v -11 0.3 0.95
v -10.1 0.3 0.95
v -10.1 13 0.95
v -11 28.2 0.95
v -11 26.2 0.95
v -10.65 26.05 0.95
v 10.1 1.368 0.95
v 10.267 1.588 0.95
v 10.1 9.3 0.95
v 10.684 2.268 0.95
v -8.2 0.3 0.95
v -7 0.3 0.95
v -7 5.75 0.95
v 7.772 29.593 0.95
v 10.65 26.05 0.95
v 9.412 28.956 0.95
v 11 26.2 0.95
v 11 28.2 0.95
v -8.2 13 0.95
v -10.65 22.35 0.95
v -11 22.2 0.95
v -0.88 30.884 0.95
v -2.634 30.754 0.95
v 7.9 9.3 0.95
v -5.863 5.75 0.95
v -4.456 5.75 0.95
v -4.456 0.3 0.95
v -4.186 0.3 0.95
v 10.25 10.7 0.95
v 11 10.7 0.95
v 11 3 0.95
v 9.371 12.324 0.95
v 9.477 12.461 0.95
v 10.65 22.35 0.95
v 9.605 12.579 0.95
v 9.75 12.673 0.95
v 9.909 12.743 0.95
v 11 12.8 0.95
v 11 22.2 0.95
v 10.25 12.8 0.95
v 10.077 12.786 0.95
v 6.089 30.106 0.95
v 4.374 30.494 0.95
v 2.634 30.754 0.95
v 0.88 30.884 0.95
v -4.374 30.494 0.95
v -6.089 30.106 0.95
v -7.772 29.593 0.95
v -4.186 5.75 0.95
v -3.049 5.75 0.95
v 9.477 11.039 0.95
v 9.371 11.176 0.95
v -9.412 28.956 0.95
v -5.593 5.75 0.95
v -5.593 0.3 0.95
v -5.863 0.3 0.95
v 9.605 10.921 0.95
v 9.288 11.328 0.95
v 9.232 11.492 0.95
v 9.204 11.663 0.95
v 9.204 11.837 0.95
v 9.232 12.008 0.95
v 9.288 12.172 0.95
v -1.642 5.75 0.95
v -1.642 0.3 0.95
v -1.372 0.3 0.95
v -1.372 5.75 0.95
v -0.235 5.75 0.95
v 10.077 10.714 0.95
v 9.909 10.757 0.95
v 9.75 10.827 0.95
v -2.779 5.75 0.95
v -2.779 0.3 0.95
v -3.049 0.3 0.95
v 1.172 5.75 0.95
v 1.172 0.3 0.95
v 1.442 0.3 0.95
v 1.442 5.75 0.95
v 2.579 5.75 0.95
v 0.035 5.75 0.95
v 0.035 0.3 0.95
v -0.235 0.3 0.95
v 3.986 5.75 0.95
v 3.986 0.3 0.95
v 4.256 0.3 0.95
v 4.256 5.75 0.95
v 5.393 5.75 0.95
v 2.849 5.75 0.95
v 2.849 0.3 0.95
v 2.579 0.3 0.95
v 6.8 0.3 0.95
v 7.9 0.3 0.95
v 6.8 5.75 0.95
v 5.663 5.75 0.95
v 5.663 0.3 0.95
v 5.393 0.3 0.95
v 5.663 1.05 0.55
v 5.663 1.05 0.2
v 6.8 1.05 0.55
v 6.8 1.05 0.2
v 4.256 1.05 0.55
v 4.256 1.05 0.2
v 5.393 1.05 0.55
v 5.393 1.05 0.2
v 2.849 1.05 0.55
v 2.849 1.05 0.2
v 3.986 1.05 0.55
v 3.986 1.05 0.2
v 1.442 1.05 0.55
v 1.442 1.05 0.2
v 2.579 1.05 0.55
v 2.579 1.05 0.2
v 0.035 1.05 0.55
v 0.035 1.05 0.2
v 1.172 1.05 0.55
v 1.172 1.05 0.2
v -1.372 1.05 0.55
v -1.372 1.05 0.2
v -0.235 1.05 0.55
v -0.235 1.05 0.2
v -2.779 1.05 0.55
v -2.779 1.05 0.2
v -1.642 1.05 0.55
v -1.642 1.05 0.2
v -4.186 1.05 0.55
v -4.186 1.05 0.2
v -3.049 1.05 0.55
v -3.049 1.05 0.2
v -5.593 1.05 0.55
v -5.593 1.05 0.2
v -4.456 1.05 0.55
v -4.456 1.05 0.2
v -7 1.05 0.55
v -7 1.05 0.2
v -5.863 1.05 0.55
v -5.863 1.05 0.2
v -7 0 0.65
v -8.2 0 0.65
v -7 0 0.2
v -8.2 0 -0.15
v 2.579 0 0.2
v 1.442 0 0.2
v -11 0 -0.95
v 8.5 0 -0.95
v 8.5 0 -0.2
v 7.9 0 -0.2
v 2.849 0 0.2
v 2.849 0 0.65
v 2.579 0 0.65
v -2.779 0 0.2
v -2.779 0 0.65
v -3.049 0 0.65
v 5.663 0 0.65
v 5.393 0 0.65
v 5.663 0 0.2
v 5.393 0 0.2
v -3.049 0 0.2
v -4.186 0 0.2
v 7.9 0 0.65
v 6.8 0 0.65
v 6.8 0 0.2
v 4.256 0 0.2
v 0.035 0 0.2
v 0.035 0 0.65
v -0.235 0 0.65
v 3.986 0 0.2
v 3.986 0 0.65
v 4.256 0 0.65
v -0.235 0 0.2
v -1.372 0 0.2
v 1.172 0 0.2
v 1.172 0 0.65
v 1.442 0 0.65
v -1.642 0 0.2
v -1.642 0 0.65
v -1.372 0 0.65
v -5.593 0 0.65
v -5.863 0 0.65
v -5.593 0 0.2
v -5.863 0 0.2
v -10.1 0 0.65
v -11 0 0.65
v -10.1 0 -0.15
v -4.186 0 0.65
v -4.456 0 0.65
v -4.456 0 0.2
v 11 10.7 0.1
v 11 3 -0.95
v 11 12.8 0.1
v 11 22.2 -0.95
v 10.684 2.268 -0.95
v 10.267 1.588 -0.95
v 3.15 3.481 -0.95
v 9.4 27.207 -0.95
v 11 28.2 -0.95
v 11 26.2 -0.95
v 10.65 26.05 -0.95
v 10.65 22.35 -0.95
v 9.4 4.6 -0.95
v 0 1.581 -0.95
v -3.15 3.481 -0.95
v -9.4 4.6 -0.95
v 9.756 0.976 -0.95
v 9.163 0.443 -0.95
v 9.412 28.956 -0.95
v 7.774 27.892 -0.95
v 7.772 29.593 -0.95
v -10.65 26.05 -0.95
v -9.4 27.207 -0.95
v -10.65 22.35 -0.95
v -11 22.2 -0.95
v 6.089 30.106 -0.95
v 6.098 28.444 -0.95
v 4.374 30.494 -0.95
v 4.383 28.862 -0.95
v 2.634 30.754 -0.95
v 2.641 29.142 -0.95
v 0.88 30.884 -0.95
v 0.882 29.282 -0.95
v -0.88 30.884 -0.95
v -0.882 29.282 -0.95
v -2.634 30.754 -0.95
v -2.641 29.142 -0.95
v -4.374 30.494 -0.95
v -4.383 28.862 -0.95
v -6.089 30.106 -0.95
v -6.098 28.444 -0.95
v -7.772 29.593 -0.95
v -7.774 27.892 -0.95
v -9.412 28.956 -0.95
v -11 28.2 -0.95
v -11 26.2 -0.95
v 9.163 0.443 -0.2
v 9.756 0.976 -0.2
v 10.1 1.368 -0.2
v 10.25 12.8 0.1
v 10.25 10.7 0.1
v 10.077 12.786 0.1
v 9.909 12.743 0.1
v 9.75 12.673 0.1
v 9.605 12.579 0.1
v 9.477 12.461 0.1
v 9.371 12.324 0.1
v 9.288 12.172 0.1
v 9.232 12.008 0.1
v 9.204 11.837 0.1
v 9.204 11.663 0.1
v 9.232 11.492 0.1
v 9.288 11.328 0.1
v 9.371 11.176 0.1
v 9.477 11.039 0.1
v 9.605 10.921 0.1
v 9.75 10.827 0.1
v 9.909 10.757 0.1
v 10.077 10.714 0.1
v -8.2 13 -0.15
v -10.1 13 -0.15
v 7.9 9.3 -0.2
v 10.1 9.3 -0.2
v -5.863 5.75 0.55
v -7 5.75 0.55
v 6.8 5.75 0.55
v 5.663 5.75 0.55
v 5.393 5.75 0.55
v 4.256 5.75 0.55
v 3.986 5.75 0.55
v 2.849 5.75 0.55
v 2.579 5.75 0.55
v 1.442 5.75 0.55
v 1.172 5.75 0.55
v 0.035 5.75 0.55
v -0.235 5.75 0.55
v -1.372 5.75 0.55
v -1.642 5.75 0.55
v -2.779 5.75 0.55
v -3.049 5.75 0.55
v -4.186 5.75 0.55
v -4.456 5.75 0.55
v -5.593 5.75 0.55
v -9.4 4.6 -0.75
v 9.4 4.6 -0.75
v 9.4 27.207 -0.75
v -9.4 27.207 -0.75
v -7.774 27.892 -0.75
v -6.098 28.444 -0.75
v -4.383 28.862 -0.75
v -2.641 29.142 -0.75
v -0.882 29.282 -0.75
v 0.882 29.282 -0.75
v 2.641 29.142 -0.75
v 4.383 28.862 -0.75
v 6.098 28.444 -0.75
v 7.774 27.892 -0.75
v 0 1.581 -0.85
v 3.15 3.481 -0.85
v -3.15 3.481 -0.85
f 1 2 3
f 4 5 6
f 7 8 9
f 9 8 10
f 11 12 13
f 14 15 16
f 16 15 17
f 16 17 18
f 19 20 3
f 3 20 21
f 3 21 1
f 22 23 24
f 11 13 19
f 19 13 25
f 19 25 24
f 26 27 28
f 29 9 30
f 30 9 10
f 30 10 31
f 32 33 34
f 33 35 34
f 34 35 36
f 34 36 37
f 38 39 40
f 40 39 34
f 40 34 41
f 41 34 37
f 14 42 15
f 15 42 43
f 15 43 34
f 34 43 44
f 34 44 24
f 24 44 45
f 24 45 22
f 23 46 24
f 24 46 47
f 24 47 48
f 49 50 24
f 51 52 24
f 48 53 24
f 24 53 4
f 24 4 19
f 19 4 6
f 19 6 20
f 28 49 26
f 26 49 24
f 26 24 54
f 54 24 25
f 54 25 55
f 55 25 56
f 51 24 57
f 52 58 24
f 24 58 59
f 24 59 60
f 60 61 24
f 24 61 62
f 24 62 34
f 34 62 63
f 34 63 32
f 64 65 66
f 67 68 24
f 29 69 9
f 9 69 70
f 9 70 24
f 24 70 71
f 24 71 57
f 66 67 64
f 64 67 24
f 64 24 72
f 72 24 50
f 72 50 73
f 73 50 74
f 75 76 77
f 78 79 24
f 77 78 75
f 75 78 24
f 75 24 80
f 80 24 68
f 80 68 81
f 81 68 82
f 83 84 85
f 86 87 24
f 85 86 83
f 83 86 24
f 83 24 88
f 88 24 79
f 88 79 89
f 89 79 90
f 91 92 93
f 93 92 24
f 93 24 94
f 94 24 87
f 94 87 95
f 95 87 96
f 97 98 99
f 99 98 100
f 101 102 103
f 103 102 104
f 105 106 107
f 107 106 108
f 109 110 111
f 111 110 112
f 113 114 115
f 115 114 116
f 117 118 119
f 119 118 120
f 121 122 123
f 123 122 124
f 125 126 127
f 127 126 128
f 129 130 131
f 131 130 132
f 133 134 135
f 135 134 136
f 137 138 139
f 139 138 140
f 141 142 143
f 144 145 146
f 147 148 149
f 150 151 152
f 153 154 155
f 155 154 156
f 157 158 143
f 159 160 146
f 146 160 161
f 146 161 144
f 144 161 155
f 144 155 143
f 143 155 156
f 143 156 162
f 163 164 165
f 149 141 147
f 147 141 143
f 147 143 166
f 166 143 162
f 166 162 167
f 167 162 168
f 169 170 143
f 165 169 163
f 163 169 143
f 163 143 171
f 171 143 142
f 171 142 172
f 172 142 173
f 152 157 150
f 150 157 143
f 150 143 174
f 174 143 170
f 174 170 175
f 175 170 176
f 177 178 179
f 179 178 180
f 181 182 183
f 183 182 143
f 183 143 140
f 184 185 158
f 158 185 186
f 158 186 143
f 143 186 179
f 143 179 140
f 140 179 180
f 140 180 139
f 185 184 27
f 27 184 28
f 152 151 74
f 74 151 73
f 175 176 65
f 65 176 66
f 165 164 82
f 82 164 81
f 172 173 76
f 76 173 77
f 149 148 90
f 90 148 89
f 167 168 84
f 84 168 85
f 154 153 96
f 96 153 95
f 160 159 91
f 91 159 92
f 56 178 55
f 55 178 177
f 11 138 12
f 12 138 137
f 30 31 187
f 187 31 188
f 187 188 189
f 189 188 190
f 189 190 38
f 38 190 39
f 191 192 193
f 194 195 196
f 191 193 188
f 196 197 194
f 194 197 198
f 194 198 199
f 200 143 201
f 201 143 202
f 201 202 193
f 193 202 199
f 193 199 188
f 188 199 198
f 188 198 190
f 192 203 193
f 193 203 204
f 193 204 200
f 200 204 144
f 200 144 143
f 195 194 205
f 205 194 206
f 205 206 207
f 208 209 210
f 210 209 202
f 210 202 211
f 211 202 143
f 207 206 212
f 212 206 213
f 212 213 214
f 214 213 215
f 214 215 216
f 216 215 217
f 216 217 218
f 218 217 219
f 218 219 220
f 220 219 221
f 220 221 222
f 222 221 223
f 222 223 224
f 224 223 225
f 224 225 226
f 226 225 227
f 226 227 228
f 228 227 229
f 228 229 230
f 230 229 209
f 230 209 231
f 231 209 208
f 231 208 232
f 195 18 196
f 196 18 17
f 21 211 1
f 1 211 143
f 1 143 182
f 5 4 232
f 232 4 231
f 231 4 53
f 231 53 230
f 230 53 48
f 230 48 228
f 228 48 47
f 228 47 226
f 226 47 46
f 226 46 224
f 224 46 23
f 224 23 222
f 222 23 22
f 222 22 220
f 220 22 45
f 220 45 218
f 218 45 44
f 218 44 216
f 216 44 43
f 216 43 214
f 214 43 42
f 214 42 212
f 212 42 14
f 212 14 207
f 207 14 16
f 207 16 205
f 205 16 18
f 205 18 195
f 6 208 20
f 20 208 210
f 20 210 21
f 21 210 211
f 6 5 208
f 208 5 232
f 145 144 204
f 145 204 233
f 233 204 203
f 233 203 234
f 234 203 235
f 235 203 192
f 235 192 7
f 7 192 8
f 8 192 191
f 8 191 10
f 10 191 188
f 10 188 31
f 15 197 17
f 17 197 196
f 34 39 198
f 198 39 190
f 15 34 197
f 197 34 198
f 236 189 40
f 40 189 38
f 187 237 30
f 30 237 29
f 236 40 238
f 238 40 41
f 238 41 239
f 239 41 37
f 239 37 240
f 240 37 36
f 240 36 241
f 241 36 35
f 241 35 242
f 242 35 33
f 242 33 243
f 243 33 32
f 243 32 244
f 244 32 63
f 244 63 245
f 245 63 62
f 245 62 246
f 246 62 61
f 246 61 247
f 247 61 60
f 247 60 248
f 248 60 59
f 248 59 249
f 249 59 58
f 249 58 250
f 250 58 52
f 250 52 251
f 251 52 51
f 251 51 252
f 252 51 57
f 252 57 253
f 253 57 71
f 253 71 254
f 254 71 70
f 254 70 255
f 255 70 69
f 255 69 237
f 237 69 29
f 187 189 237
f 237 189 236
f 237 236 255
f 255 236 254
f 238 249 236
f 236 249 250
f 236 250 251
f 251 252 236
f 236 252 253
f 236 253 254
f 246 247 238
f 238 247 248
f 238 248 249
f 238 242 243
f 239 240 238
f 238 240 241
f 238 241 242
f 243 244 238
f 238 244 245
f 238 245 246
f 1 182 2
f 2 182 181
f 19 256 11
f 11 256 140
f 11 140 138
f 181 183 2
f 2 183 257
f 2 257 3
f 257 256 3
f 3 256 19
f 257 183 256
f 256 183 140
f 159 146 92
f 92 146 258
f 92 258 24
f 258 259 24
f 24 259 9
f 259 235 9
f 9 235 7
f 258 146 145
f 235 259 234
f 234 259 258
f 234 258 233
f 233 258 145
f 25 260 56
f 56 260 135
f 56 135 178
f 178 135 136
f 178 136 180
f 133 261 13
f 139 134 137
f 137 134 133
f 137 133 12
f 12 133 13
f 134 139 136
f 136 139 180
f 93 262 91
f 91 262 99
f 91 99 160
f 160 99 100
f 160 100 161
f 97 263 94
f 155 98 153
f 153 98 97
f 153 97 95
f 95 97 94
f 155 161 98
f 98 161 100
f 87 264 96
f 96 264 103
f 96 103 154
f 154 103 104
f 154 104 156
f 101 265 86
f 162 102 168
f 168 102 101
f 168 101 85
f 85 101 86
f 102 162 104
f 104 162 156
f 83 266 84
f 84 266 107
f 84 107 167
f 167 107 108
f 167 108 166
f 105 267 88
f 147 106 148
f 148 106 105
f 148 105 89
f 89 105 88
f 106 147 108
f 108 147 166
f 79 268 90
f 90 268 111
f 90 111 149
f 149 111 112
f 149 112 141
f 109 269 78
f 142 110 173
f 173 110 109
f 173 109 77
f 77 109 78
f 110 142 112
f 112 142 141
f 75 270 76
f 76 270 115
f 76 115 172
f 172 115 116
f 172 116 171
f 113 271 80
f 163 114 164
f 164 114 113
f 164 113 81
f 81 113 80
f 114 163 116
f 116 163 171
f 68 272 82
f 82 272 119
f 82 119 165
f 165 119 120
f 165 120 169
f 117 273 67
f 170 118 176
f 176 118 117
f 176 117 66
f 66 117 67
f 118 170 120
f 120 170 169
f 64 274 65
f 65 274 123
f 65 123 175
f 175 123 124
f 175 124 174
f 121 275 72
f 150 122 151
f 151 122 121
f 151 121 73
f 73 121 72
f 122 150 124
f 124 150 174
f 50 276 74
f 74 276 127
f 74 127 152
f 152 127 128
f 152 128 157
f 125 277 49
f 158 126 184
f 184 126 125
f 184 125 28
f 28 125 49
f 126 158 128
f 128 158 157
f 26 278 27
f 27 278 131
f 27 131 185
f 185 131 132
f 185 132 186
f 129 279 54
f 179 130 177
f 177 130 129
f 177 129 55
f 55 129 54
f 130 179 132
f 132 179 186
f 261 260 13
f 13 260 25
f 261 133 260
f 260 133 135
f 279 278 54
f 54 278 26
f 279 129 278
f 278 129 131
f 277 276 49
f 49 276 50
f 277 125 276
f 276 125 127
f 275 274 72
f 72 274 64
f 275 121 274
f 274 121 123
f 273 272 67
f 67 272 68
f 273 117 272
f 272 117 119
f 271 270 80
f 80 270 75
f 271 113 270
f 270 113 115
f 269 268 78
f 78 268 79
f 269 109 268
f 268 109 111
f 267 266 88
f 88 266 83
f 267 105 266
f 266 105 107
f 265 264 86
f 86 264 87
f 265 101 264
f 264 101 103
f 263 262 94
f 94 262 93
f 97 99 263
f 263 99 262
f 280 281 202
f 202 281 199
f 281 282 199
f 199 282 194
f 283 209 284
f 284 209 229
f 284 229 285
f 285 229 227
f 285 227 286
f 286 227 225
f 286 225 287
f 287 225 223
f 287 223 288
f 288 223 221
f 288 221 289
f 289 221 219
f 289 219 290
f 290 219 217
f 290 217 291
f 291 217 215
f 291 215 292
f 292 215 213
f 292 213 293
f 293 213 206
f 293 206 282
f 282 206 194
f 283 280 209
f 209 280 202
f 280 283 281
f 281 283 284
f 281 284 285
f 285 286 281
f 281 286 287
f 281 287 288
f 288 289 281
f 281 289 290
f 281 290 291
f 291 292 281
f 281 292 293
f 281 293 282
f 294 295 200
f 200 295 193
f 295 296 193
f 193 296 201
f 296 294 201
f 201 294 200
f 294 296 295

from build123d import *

# Parameters (mm, degrees)
SKETCH1_W           = 22
SKETCH1_H           = 1.9
BOSS_EXTRUDE1_DEPTH = 31.1
CUT_EXTRUDE2_REACH  = 35.043
CUT_EXTRUDE3_REACH  = 34.855
CUT_EXTRUDE4_DEPTH  = 0.85
CHAMFER1_SIZE       = 0.3
SKETCH2_8_W         = 1.9
SKETCH2_8_H         = 13
CUT_EXTRUDE6_DEPTH  = 1.1
CUT_EXTRUDE7_DEPTH  = 1.15
SKETCH2_10_W        = 1.137
SKETCH2_10_H        = 1.05
CUT_EXTRUDE8_DEPTH  = 0.75
SKETCH2_11_W        = 1.137
SKETCH2_11_H        = 4.7
CUT_EXTRUDE9_DEPTH  = 0.4
CUT_EXTRUDE10_DEPTH = 0.2
CUT_EXTRUDE12_DEPTH = 0.1


with BuildPart() as part:
    # Sketch1 → Boss-Extrude1 (new body)
    with BuildSketch(Plane(origin=(0, 0, 0), x_dir=(1, 0, 0), z_dir=(0, 1, 0))):
        Rectangle(SKETCH1_W, SKETCH1_H)
    extrude(amount=BOSS_EXTRUDE1_DEPTH)

    # Sketch2 → Cut-Extrude2 (cut, up to next)
    with BuildSketch(Plane.XY.offset(0.95), mode=Mode.PRIVATE) as cut_extrude2_sk1:
        with BuildLine():
            Line((-11, 31.1), (-11, 28.2))
            ThreePointArc((-11, 28.2), (0, 30.9), (11, 28.2))
            Line((11, 28.2), (11, 31.1))
            Line((11, 31.1), (-11, 31.1))
        make_face()
    cut_extrude2_tool1 = extrude(cut_extrude2_sk1.sketch, amount=-CUT_EXTRUDE2_REACH, mode=Mode.PRIVATE) & part.part
    add(cut_extrude2_tool1.solids().sort_by_distance((10.778097, 29.65, 0.95))[0], mode=Mode.SUBTRACT)

    # Sketch2<4> → Cut-Extrude3 (cut, up to next)
    with BuildSketch(Plane.XY.offset(0.95), mode=Mode.PRIVATE) as cut_extrude3_sk1:
        Polygon((-11, 26.2), (-11, 22.2), (-10.65, 22.35), (-10.65, 26.05), align=None)
    cut_extrude3_tool1 = extrude(cut_extrude3_sk1.sketch, amount=-CUT_EXTRUDE3_REACH, mode=Mode.PRIVATE) & part.part
    # Sketch2<4> → Cut-Extrude3 (cut, up to next)
    with BuildSketch(Plane.XY.offset(0.95), mode=Mode.PRIVATE) as cut_extrude3_sk2:
        Polygon((11, 22.2), (11, 26.2), (10.65, 26.05), (10.65, 22.35), align=None)
    cut_extrude3_tool2 = extrude(cut_extrude3_sk2.sketch, amount=-CUT_EXTRUDE3_REACH, mode=Mode.PRIVATE) & part.part
    # Sketch2<4> → Cut-Extrude3 (cut, up to next)
    with BuildSketch(Plane.XY.offset(0.95), mode=Mode.PRIVATE) as cut_extrude3_sk3:
        with BuildLine():
            Line((11, 0), (11, 3))
            ThreePointArc((11, 3), (10.022572528, 1.272856226), (8.5, 0))
            Line((8.5, 0), (11, 0))
        make_face()
    cut_extrude3_tool3 = extrude(cut_extrude3_sk3.sketch, amount=-CUT_EXTRUDE3_REACH, mode=Mode.PRIVATE) & part.part
    add(cut_extrude3_tool1.solids().sort_by_distance((-10.827273, 24.2, 0.95))[0], mode=Mode.SUBTRACT)
    add(cut_extrude3_tool2.solids().sort_by_distance((10.827273, 24.2, 0.95))[0], mode=Mode.SUBTRACT)
    add(cut_extrude3_tool3.solids().sort_by_distance((10.267991, 0.865194, 0.95))[0], mode=Mode.SUBTRACT)

    # Sketch2<5> → Cut-Extrude4 (cut)
    with BuildSketch(Plane.XY.offset(0.95)):
        with BuildLine():
            Line((11, 10.7), (11, 12.8))
            Line((11, 12.8), (10.25, 12.8))
            ThreePointArc((10.25, 12.8), (9.2, 11.75), (10.25, 10.7))
            Line((10.25, 10.7), (11, 10.7))
        make_face()
    extrude(amount=-CUT_EXTRUDE4_DEPTH, mode=Mode.SUBTRACT)

    # Chamfer1
    chamfer1_edges = [part.edges().sort_by_distance(p)[0] for p in [
        (-1.25, 0, 0.95),
    ]]
    chamfer(chamfer1_edges, length=CHAMFER1_SIZE)

    # Sketch2<8> → Cut-Extrude6 (cut)
    with BuildSketch(Plane.XY.offset(0.95)):
        with Locations((-9.15, 6.5)):
            Rectangle(SKETCH2_8_W, SKETCH2_8_H)
    extrude(amount=-CUT_EXTRUDE6_DEPTH, mode=Mode.SUBTRACT)

    # Sketch2<9> → Cut-Extrude7 (cut)
    with BuildSketch(Plane.XY.offset(0.95)):
        with BuildLine():
            ThreePointArc((8.5, 0), (9.365445636, 0.607390694), (10.1, 1.36788362))
            Line((10.1, 1.36788362), (10.1, 9.3))
            Line((10.1, 9.3), (7.9, 9.3))
            Line((7.9, 9.3), (7.9, 0))
            Line((7.9, 0), (8.5, 0))
        make_face()
    extrude(amount=-CUT_EXTRUDE7_DEPTH, mode=Mode.SUBTRACT)

    # Sketch2<10> → Cut-Extrude8 (cut)
    with BuildSketch(Plane.XY.offset(0.95)):
        with Locations((-6.4315, 0.525)):
            Rectangle(SKETCH2_10_W, SKETCH2_10_H)
        with Locations((-5.0245, 0.525)):
            Rectangle(SKETCH2_10_W, SKETCH2_10_H)
        with Locations((-3.6175, 0.525)):
            Rectangle(SKETCH2_10_W, SKETCH2_10_H)
        with Locations((-2.2105, 0.525)):
            Rectangle(SKETCH2_10_W, SKETCH2_10_H)
        with Locations((-0.8035, 0.525)):
            Rectangle(SKETCH2_10_W, SKETCH2_10_H)
        with Locations((0.6035, 0.525)):
            Rectangle(SKETCH2_10_W, SKETCH2_10_H)
        with Locations((2.0105, 0.525)):
            Rectangle(SKETCH2_10_W, SKETCH2_10_H)
        with Locations((3.4175, 0.525)):
            Rectangle(SKETCH2_10_W, SKETCH2_10_H)
        with Locations((6.2315, 0.525)):
            Rectangle(SKETCH2_10_W, SKETCH2_10_H)
        with Locations((4.8245, 0.525)):
            Rectangle(SKETCH2_10_W, SKETCH2_10_H)
    extrude(amount=-CUT_EXTRUDE8_DEPTH, mode=Mode.SUBTRACT)

    # Sketch2<11> → Cut-Extrude9 (cut)
    with BuildSketch(Plane.XY.offset(0.95)):
        with Locations((-6.4315, 3.4)):
            Rectangle(SKETCH2_11_W, SKETCH2_11_H)
        with Locations((-5.0245, 3.4)):
            Rectangle(SKETCH2_11_W, SKETCH2_11_H)
        with Locations((-3.6175, 3.4)):
            Rectangle(SKETCH2_11_W, SKETCH2_11_H)
        with Locations((-2.2105, 3.4)):
            Rectangle(SKETCH2_11_W, SKETCH2_11_H)
        with Locations((-0.8035, 3.4)):
            Rectangle(SKETCH2_11_W, SKETCH2_11_H)
        with Locations((0.6035, 3.4)):
            Rectangle(SKETCH2_11_W, SKETCH2_11_H)
        with Locations((2.0105, 3.4)):
            Rectangle(SKETCH2_11_W, SKETCH2_11_H)
        with Locations((3.4175, 3.4)):
            Rectangle(SKETCH2_11_W, SKETCH2_11_H)
        with Locations((6.2315, 3.4)):
            Rectangle(SKETCH2_11_W, SKETCH2_11_H)
        with Locations((4.8245, 3.4)):
            Rectangle(SKETCH2_11_W, SKETCH2_11_H)
    extrude(amount=-CUT_EXTRUDE9_DEPTH, mode=Mode.SUBTRACT)

    # Sketch5 → Cut-Extrude10 (cut)
    with BuildSketch(Plane(origin=(0, 0, -0.95), x_dir=(-1, 0, 0), z_dir=(0, 0, -1))):
        with BuildLine():
            Line((-9.4, 4.6), (-9.4, 27.207255635))
            ThreePointArc((-9.4, 27.207255635), (0, 29.3), (9.4, 27.207255635))
            Line((9.4, 27.207255635), (9.4, 4.6))
            Line((9.4, 4.6), (-9.4, 4.6))
        make_face()
    extrude(amount=-CUT_EXTRUDE10_DEPTH, mode=Mode.SUBTRACT)

    # Sketch6 → Cut-Extrude12 (cut)
    with BuildSketch(Plane(origin=(0, 0, -0.95), x_dir=(-1, 0, 0), z_dir=(0, 0, -1))):
        Polygon((-3.15, 3.48074093), (3.15, 3.48074093), (0, 1.58074093), align=None)
    extrude(amount=-CUT_EXTRUDE12_DEPTH, mode=Mode.SUBTRACT)


solid = part.part
